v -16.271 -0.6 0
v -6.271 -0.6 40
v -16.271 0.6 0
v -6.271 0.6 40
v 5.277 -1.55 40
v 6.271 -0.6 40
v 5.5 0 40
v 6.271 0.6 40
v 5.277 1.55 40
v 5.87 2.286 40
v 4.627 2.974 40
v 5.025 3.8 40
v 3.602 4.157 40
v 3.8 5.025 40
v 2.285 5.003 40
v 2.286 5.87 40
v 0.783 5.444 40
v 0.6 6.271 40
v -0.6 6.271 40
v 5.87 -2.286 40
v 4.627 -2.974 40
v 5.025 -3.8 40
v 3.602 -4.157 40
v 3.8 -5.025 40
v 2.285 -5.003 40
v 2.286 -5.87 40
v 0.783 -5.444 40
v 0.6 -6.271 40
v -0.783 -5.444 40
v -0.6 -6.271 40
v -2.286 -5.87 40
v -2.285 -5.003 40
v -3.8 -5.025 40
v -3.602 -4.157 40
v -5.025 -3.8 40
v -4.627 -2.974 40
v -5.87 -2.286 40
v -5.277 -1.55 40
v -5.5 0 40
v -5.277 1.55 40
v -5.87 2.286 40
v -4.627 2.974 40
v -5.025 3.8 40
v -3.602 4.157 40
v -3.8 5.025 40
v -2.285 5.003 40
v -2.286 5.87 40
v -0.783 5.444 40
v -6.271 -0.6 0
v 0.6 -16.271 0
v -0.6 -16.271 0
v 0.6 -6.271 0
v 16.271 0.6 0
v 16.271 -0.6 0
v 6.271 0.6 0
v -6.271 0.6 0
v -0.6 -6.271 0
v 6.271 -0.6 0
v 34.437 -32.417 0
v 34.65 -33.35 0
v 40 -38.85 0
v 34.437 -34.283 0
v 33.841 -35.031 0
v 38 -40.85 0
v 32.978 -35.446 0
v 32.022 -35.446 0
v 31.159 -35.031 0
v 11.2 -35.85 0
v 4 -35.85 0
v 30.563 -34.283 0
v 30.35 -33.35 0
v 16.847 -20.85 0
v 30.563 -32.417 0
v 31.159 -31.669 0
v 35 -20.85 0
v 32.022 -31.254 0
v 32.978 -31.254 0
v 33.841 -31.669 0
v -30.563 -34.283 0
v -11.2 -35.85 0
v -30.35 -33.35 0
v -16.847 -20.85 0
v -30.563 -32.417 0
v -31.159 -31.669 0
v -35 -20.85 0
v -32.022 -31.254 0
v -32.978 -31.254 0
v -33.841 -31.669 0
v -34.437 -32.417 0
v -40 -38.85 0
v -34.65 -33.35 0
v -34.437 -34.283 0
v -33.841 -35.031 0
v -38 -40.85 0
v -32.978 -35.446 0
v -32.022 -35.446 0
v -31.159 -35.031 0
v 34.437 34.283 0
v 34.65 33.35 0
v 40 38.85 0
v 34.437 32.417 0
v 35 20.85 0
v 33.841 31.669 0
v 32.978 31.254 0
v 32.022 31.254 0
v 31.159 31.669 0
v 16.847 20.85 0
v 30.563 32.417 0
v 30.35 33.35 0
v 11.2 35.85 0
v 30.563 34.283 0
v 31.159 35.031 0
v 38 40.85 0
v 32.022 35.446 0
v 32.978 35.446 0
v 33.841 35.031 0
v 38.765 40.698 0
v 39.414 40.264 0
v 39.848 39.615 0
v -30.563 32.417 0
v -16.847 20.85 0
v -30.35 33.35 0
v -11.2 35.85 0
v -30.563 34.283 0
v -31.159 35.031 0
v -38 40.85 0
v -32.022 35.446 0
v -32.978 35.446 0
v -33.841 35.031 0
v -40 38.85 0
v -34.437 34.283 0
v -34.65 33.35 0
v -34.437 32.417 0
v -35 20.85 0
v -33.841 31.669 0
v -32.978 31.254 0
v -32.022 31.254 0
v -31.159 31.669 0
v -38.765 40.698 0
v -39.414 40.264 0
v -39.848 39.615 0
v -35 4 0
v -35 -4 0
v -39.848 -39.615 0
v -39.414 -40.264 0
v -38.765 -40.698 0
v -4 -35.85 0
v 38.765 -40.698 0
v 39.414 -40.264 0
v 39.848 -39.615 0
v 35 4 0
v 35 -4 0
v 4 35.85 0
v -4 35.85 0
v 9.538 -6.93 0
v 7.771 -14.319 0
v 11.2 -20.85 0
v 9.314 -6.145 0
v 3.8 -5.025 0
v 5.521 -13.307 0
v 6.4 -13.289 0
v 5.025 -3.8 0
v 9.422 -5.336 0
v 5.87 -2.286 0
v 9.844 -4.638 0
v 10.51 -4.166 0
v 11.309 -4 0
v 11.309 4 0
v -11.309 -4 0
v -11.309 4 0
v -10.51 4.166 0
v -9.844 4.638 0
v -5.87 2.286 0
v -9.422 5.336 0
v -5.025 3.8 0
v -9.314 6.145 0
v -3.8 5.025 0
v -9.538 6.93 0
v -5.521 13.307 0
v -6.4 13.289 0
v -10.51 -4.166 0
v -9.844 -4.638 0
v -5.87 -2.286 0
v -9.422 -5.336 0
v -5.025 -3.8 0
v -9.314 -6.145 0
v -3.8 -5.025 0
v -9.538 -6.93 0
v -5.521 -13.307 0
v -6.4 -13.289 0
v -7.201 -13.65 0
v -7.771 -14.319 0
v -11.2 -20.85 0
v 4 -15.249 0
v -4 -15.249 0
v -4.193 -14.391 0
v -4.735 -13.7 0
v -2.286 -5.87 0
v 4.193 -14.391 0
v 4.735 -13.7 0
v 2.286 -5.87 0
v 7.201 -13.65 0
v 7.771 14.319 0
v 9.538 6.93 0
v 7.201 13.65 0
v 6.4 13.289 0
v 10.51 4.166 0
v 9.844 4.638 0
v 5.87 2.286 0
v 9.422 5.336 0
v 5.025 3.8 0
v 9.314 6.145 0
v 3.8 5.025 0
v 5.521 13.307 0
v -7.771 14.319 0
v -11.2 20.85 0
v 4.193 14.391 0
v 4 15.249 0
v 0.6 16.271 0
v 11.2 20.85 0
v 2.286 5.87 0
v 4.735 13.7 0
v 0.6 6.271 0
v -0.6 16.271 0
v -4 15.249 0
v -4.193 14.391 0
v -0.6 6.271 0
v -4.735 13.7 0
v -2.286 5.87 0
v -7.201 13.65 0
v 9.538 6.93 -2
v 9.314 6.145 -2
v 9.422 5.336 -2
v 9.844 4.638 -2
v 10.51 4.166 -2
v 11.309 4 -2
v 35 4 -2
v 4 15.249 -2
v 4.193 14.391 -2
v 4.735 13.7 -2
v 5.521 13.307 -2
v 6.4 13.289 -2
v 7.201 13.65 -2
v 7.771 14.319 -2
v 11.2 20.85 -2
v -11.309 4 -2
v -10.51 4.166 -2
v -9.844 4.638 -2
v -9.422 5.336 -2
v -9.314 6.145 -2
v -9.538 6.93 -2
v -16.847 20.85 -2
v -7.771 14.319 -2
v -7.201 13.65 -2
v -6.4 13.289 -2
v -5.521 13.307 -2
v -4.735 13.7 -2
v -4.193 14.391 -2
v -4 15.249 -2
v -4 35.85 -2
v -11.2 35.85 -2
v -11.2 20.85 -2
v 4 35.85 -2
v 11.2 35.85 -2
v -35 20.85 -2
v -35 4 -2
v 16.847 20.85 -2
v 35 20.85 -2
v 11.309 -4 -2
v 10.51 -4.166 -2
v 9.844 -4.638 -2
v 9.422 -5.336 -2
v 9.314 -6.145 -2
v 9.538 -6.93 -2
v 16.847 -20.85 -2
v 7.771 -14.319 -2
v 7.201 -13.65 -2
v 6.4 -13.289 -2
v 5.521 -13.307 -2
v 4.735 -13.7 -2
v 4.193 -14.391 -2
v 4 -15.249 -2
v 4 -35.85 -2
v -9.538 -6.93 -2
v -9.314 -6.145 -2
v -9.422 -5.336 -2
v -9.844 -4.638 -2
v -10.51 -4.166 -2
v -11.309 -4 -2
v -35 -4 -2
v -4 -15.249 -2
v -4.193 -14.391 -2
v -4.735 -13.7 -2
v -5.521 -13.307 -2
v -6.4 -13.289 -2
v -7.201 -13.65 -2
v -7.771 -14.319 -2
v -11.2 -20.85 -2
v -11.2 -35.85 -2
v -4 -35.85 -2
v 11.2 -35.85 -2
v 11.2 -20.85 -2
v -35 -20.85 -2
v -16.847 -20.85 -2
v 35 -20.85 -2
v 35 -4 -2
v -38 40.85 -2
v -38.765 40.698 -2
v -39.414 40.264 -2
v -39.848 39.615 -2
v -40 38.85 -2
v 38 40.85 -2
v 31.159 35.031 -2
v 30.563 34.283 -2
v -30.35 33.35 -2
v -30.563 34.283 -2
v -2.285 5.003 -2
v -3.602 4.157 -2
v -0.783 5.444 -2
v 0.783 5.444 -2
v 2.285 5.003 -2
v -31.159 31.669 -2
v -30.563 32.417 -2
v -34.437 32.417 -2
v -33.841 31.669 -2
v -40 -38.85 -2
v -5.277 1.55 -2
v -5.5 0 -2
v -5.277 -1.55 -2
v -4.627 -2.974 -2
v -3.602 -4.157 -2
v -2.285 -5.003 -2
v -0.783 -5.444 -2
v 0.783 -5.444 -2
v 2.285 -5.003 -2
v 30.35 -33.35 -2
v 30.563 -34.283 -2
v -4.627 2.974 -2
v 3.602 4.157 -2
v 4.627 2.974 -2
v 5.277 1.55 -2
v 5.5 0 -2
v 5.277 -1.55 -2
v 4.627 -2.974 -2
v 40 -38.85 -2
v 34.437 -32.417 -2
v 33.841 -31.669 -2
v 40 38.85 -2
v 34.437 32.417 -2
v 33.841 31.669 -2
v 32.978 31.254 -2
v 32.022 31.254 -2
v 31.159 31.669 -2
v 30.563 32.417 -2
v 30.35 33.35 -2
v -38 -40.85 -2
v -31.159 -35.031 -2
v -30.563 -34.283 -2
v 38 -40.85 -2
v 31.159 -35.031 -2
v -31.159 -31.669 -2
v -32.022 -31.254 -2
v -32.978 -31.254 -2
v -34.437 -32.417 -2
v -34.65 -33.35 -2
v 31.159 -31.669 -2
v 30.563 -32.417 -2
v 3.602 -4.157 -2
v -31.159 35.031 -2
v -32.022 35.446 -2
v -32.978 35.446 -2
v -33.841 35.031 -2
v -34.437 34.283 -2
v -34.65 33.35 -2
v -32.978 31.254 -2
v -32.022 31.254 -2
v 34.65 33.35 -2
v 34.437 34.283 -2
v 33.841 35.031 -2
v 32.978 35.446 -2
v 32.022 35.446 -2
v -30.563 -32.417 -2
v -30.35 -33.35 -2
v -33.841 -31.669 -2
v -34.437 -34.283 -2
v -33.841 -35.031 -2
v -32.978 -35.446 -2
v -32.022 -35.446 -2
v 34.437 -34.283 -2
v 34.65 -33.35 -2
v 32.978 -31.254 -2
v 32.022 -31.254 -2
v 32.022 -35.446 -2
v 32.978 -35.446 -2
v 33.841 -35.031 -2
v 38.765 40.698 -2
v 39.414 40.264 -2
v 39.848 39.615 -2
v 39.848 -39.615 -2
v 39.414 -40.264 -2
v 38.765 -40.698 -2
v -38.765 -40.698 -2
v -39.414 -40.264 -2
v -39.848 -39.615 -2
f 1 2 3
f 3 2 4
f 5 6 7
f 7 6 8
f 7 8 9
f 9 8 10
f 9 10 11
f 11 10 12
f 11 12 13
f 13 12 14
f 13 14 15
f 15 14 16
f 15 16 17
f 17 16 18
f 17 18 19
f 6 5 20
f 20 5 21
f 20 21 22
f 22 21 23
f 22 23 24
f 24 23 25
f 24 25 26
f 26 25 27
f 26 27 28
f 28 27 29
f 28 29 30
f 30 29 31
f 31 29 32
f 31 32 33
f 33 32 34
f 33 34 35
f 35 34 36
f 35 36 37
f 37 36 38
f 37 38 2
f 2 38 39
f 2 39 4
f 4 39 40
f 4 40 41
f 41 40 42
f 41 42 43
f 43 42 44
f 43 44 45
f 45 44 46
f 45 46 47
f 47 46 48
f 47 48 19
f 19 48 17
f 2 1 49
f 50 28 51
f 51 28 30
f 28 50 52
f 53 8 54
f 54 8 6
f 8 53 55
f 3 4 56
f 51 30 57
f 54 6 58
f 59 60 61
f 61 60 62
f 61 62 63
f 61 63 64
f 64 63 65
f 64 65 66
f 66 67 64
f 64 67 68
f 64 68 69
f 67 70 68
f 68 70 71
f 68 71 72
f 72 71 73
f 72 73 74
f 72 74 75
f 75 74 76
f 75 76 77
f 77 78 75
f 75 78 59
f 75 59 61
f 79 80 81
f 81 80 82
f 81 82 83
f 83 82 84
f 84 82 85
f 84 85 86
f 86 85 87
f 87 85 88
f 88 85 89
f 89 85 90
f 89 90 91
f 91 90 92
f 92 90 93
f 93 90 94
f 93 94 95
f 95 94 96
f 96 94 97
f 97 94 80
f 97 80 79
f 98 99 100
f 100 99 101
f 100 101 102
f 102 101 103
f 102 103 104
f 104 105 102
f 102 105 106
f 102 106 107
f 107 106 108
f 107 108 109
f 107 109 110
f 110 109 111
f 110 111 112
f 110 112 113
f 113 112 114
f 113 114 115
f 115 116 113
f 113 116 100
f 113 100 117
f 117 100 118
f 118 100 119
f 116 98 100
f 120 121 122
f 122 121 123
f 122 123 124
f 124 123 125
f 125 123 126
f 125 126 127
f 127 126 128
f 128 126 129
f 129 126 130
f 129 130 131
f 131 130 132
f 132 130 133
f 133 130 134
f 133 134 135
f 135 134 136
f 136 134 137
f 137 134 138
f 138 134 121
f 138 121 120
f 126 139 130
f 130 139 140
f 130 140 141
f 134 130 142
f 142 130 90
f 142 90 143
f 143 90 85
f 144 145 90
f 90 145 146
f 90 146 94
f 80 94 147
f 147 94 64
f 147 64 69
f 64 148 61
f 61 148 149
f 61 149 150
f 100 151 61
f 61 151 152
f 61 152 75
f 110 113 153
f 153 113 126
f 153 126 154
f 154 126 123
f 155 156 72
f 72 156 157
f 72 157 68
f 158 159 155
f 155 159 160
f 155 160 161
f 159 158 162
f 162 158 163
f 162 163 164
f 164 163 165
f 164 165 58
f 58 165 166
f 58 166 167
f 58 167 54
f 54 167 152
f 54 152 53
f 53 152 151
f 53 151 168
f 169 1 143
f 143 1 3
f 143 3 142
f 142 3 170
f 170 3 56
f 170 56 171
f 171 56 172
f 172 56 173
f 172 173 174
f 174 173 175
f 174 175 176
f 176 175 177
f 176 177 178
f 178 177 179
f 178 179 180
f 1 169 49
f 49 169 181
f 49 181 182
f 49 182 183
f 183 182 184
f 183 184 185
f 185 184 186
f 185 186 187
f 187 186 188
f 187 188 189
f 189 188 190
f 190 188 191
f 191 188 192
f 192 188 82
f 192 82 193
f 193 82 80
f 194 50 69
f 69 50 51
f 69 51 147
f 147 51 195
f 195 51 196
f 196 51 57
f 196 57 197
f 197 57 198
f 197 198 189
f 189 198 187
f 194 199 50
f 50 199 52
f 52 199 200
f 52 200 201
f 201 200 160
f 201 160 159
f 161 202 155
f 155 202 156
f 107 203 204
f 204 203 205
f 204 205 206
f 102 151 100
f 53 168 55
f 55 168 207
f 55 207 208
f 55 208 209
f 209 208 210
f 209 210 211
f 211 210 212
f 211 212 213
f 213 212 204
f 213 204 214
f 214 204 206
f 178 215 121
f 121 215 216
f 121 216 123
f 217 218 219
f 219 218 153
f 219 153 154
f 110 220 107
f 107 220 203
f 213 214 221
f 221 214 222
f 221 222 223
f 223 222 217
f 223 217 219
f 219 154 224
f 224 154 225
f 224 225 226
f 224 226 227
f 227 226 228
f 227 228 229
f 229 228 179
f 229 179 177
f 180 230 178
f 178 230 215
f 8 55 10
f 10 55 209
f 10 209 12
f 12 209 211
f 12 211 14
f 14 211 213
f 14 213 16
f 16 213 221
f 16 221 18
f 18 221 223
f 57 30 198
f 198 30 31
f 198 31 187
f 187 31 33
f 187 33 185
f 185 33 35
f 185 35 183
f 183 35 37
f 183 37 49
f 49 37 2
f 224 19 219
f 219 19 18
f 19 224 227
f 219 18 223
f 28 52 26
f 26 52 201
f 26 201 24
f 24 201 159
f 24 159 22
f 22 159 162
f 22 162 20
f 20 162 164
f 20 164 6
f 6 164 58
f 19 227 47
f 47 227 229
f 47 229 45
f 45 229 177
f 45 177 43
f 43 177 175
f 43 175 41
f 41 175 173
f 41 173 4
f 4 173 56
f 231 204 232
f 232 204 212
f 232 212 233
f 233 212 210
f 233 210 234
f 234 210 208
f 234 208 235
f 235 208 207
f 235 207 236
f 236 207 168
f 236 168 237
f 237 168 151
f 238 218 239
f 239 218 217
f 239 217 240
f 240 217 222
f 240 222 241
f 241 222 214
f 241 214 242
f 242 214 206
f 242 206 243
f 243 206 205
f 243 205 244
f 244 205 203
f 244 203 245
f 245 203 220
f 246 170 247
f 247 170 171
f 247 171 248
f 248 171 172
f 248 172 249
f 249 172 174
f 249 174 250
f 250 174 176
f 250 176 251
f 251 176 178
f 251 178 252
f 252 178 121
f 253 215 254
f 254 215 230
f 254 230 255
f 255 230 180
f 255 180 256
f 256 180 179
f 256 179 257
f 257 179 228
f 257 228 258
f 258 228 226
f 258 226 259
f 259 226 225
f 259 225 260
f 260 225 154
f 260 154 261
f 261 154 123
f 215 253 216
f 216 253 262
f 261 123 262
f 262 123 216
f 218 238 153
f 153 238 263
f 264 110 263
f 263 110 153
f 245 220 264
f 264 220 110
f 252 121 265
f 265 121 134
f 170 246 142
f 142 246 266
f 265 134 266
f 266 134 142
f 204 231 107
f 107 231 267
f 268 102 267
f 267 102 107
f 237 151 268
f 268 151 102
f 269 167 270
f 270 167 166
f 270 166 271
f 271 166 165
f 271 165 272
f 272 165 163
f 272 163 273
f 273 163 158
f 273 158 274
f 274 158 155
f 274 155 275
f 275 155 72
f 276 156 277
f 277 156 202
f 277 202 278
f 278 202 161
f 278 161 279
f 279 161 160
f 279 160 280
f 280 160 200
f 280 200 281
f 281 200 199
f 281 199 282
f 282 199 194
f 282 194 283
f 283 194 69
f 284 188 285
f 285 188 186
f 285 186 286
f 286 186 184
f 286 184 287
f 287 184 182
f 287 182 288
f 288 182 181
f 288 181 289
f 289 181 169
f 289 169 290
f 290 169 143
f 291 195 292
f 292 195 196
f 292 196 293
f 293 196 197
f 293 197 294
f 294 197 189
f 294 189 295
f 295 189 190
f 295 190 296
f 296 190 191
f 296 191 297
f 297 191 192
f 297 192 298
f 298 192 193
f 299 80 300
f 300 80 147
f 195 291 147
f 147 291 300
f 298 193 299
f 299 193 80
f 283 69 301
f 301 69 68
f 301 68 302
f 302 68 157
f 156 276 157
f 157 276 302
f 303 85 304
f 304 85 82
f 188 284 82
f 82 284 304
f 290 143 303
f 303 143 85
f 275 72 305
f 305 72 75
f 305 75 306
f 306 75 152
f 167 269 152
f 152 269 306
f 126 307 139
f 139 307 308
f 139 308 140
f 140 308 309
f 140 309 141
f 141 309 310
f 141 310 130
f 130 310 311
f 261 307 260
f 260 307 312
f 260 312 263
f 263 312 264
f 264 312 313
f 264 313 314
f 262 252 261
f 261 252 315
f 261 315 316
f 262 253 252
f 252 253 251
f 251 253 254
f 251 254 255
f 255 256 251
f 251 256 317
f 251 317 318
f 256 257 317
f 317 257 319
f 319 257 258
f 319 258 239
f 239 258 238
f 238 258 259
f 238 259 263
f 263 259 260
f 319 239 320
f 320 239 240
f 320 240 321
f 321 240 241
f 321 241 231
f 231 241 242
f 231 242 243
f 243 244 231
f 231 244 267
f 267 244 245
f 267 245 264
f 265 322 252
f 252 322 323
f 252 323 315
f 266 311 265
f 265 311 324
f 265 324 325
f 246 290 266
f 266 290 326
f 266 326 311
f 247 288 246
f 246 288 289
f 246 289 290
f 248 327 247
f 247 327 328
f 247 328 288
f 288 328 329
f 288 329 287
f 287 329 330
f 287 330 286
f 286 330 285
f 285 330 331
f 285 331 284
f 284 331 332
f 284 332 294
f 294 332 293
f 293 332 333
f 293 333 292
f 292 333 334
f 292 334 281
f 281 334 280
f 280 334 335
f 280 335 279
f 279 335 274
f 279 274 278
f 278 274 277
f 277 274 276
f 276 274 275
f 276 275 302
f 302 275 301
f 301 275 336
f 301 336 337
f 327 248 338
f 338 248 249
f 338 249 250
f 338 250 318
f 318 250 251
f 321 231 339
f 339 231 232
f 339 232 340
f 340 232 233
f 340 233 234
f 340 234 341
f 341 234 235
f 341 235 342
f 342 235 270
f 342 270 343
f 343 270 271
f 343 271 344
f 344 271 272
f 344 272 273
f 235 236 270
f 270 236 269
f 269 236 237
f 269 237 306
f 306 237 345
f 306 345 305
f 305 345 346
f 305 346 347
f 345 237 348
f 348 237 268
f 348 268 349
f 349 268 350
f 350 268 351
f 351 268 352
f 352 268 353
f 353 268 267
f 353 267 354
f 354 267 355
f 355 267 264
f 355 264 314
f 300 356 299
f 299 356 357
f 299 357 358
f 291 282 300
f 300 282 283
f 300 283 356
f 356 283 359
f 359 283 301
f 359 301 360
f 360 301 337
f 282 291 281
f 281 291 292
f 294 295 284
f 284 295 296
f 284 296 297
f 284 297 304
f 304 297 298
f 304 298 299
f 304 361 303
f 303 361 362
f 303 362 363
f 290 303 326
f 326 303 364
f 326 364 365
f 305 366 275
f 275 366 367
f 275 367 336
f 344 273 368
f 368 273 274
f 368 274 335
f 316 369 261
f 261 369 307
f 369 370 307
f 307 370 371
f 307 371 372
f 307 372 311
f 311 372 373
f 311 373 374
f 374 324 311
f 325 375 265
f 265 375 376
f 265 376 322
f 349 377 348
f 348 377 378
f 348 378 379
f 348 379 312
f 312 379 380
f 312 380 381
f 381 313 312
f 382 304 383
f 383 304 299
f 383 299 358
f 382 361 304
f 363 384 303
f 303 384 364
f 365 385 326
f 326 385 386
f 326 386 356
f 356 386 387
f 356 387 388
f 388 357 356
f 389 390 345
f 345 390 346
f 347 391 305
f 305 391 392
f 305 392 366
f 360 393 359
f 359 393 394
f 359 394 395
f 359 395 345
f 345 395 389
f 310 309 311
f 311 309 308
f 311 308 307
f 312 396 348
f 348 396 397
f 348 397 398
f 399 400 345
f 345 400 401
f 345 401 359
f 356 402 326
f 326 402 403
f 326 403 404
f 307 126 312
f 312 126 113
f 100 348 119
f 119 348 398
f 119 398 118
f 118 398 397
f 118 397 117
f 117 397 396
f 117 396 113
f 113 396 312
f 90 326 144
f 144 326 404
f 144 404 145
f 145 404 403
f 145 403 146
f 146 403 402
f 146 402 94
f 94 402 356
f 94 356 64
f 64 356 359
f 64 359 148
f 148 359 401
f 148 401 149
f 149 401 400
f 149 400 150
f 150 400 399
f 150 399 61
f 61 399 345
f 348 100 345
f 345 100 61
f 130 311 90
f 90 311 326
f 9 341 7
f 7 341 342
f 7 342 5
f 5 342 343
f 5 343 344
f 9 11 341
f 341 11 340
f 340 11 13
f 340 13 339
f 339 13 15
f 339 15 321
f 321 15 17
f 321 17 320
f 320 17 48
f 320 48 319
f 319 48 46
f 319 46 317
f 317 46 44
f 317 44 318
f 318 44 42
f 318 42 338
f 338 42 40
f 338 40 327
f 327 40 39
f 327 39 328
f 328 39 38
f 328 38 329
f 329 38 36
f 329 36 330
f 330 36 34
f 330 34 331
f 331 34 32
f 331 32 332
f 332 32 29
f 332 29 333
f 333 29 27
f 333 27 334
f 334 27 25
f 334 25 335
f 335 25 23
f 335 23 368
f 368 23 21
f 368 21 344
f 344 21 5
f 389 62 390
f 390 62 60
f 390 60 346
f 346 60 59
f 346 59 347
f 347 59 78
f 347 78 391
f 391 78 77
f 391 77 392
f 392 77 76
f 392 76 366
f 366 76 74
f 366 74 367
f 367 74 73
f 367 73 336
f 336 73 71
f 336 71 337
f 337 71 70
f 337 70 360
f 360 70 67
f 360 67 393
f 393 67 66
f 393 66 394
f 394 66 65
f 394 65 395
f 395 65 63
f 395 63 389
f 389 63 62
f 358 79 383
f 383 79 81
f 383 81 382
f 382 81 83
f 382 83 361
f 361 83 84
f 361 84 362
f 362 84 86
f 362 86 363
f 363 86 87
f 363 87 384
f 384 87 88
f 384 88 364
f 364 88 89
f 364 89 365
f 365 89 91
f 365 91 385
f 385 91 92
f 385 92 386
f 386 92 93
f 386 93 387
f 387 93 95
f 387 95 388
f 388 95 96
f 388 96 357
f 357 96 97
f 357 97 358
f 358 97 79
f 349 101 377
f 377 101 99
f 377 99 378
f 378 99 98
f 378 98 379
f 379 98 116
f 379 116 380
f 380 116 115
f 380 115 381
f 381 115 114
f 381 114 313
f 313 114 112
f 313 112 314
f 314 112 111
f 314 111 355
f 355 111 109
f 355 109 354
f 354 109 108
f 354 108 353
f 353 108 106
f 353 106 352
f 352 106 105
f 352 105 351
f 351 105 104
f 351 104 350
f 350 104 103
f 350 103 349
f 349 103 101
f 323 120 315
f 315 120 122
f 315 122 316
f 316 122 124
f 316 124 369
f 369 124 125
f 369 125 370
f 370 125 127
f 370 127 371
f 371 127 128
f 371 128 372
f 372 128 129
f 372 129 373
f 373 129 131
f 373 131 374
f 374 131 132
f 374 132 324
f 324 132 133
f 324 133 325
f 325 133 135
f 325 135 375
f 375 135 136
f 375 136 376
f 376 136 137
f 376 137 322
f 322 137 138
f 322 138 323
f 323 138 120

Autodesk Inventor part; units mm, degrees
ref_plane "YZ Plane" through (0, 0, 0) normal (1, 0, 0) x (0, 1, 0)
sketch "S-Basis" plane through (0, 0, 0) normal (0, 0, 1) x (1, 0, 0)
  line L0 (0, 57.19) -> (0, -57.19) construction
  line L1 (-56, 0) -> (56, 0) construction
  line L2 (-40, 40.85) -> (40, 40.85)
  line L3 (40, 40.85) -> (40, -40.85)
  line L4 (40, -40.85) -> (-40, -40.85)
  line L5 (-40, -40.85) -> (-40, 40.85)
  line L6 (-40, 40.85) -> (40, -40.85) construction
  line L7 (40, 40.85) -> (-40, -40.85) construction
  line L8 (-40, 33.35) -> (40, 33.35) construction
  circle A0 centre (-32.5, 33.35) radius 2.15
  circle A1 centre (32.5, 33.35) radius 2.15
  circle A2 centre (-32.5, -33.35) radius 2.15
  circle A3 centre (32.5, -33.35) radius 2.15
  line L9 (-4.418, 40.85) -> (4.418, 40.85)
  line L10 (-40, -40.85) -> (-16.2, -40.85) construction
  line L11 (-16.2, -40.85) -> (-16.2, -25.85) construction
  line L12 (-16.2, -25.85) -> (-40, -25.85) construction
  line L13 (-40, -25.85) -> (-40, -40.85) construction
  line L14 (-40, 40.85) -> (-16.2, 40.85) construction
  line L15 (-16.2, 40.85) -> (-16.2, 25.85) construction
  line L16 (-16.2, 25.85) -> (-40, 25.85) construction
  line L17 (-40, 25.85) -> (-40, 40.85) construction
  line L18 (40, -40.85) -> (16.2, -40.85) construction
  line L19 (16.2, -40.85) -> (16.2, -25.85) construction
  line L20 (16.2, -25.85) -> (40, -25.85) construction
  line L21 (40, -25.85) -> (40, -40.85) construction
  line L22 (40, 40.85) -> (16.2, 40.85) construction
  line L23 (40, 25.85) -> (40, 40.85) construction
  line L24 (16.2, 25.85) -> (40, 25.85) construction
  line L25 (16.2, 40.85) -> (16.2, 25.85) construction
  line L26 (-16.2, -35.85) -> (-14.2, -35.85)
  line L27 (-14.2, -35.85) -> (-14.2, -30.85)
  line L28 (-14.2, -30.85) -> (-16.2, -30.85)
  line L29 (-16.2, -30.85) -> (-16.2, -35.85)
  line L30 (-35, -25.85) -> (-30, -25.85)
  line L31 (-30, -25.85) -> (-30, -23.85)
  line L32 (-30, -23.85) -> (-35, -23.85)
  line L33 (-35, -23.85) -> (-35, -25.85)
  line L34 (-16.2, 35.85) -> (-14.2, 35.85)
  line L35 (-14.2, 35.85) -> (-14.2, 30.85)
  line L36 (-14.2, 30.85) -> (-16.2, 30.85)
  line L37 (-16.2, 30.85) -> (-16.2, 35.85)
  line L38 (-35, 25.85) -> (-30, 25.85)
  line L39 (-30, 25.85) -> (-30, 23.85)
  line L40 (-30, 23.85) -> (-35, 23.85)
  line L41 (-35, 23.85) -> (-35, 25.85)
  line L42 (16.2, -35.85) -> (14.2, -35.85)
  line L43 (14.2, -35.85) -> (14.2, -30.85)
  line L44 (14.2, -30.85) -> (16.2, -30.85)
  line L45 (16.2, -30.85) -> (16.2, -35.85)
  line L46 (35, -25.85) -> (30, -25.85)
  line L47 (30, -25.85) -> (30, -23.85)
  line L48 (30, -23.85) -> (35, -23.85)
  line L49 (35, -23.85) -> (35, -25.85)
  line L50 (14.2, 30.85) -> (16.2, 30.85)
  line L51 (14.2, 35.85) -> (14.2, 30.85)
  line L52 (16.2, 35.85) -> (14.2, 35.85)
  line L53 (16.2, 30.85) -> (16.2, 35.85)
  line L54 (30, 25.85) -> (30, 23.85)
  line L55 (30, 23.85) -> (35, 23.85)
  line L56 (35, 23.85) -> (35, 25.85)
  line L57 (35, 25.85) -> (30, 25.85)
  circle A4 centre (0, 0) radius 5.5
  circle A5 centre (0, 0) radius 6.3
  line L58 (0.6, 6.2714) -> (-0.6, 6.2714)
  line L59 (-0.6, 6.2714) -> (-0.6, 16.2714)
  line L60 (-0.6, 16.2714) -> (0.6, 16.2714)
  line L61 (0.6, 16.2714) -> (0.6, 6.2714)
  line L62 (-16.2714, -0.6) -> (-16.2714, 0.6)
  line L63 (-16.2714, 0.6) -> (-6.2714, 0.6)
  line L64 (-6.2714, -0.6) -> (-16.2714, -0.6)
  line L65 (-6.2714, 0.6) -> (-6.2714, -0.6)
  line L66 (0.6, -16.2714) -> (-0.6, -16.2714)
  line L67 (-0.6, -16.2714) -> (-0.6, -6.2714)
  line L68 (0.6, -6.2714) -> (0.6, -16.2714)
  line L69 (-0.6, -6.2714) -> (0.6, -6.2714)
  line L70 (16.2714, 0.6) -> (16.2714, -0.6)
  line L71 (16.2714, -0.6) -> (6.2714, -0.6)
  line L72 (6.2714, 0.6) -> (16.2714, 0.6)
  line L73 (6.2714, -0.6) -> (6.2714, 0.6)
  point P0 (0, 40.85)
  point P1 (-16.2, -33.35)
  point P2 (-16.2, 33.35)
  point P3 (16.2, -33.35)
  point P4 (16.2, 33.35)
  point P5 (-6.2714, -0.6)
  point P6 (-6.2714, -0.6)
  point P7 (-6.2714, 0.6)
  point P8 (-6.2714, 0.6)
  point P9 (6.2714, 0.6)
  point P10 (-0.6, -6.2714)
  point P11 (0.6, -6.2714)
  point P12 (6.2714, -0.6)
  dimension "d0" = 81.7
  dimension "d1" = 80
  dimension "d4" = 7.5
  dimension "d7" = 4.3
  dimension "d8" = 32.5
  dimension "d9" = 4.3
  dimension "d10" = 32.5
  dimension "d11" = 7.5
  dimension "d26" = 15
  dimension "d27" = 23.8
  dimension "d30" = 5
  dimension "d31" = 5
  dimension "d32" = 5
  dimension "d33" = 2
  dimension "d34" = 2
  dimension "d85" = 11
  dimension "d86" = 0.8
  dimension "d87" = 1.2
  dimension "d88" = 10
  dimension "d91" = 360
extrude "Ex-Base1" add sketch "S-Basis" against normal blind 2 contours L2 L3 L4 L5 | L29 L28 L27 L26 | L33 L32 L31 L30 | L34 L35 L36 L37 | L38 L39 L40 L41 | L42 L43 L44 L45 | L46 L47 L48 L49 | L51 L52 L53 L50 | L57 L56 L55 L54 | A5 L73 | A5 L72 L70 L71 | L73 A5 L69 L65 L58 | L58 A5 | A5 L59 L60 L61 | L68 L66 L67 A5 | A5 L69 | L65 A5 | A5 L64 L62 L63
extrude "Ex-Probe" [suppressed]
fillet "Rundung1" radius 2 4 edges at (40, -40.85, -1) (-40, -40.85, -1) (40, 40.85, -1) (-40, 40.85, -1)
ref_plane "RWG-X" through (1.8795, 9, 10.525) normal (0, 0, -1) x (-1, 0, 0)
ref_plane "RWG-Y" through (0, 9, 9.585) normal (1, 0, 0) x (0, 0, -1)
sketch "Skizze5" plane through (0, 0, 0) normal (0, 0, 1) x (1, 0, 0)
  line L0 (0, 57.19) -> (0, -57.19) construction
  line L1 (-35, -4) -> (-35, -20.85)
  line L2 (-35, -20.85) -> (-16.8473, -20.85)
  line L3 (-16.8473, -20.85) -> (-8, -4)
  line L4 (-8, -4) -> (-35, -4)
  line L5 (-11.2, -20.85) -> (-11.2, -35.85)
  line L6 (-11.2, -35.85) -> (-4, -35.85)
  line L7 (-4, -35.85) -> (-4, -7.1374)
  line L8 (-4, -7.1374) -> (-11.2, -20.85)
  line L9 (-56, 0) -> (56, 0) construction
  line L10 (35, -4) -> (35, -20.85)
  line L11 (35, -20.85) -> (16.8473, -20.85)
  line L12 (16.8473, -20.85) -> (8, -4)
  line L13 (8, -4) -> (35, -4)
  line L14 (11.2, -20.85) -> (11.2, -35.85)
  line L15 (11.2, -35.85) -> (4, -35.85)
  line L16 (4, -35.85) -> (4, -7.1374)
  line L17 (4, -7.1374) -> (11.2, -20.85)
  point P0 (0, 0)
  dimension "d74" = 4
  dimension "d77" = 5
  dimension "d78" = 4
extrude "Ex-ResinSave" cut sketch "Skizze5" against normal blind 2
fillet "Run-ResinSave" radius 2 4 edges at (-4, -7.1374, -1) (-8, -4, -1) (4, -7.1374, -1) (8, -4, -1)
mirror "Spiegeln3" about plane through (0, 0, 0) normal (0, 1, 0) of "Ex-ResinSave", "Run-ResinSave"
extrude "Ex-Führung" add sketch "S-Basis" along normal blind 40 contours A5 L73 | L73 A5 L69 L65 L58 | A5 L69
extrude "Ex-Stütze1" add sketch "S-Basis" along normal blind 40 contours L58 A5 | A5 L59 L60 L61
chamfer "Fase-Stütze1" distance 10 distance2 40 1 edges at (0, 16.2714, 40) measured on face at (0.2, 9.6047, 40)
pattern_circular "Runde Anordnung1" count 4 over 360 about axis through (0, 0, 0) along (0, 0, -1) of "Ex-Stütze1", "Fase-Stütze1"
equation "\"d10\" = d8"
equation "\"d11\" = d4"
properties part number "StiftHalter_PlateV1"
